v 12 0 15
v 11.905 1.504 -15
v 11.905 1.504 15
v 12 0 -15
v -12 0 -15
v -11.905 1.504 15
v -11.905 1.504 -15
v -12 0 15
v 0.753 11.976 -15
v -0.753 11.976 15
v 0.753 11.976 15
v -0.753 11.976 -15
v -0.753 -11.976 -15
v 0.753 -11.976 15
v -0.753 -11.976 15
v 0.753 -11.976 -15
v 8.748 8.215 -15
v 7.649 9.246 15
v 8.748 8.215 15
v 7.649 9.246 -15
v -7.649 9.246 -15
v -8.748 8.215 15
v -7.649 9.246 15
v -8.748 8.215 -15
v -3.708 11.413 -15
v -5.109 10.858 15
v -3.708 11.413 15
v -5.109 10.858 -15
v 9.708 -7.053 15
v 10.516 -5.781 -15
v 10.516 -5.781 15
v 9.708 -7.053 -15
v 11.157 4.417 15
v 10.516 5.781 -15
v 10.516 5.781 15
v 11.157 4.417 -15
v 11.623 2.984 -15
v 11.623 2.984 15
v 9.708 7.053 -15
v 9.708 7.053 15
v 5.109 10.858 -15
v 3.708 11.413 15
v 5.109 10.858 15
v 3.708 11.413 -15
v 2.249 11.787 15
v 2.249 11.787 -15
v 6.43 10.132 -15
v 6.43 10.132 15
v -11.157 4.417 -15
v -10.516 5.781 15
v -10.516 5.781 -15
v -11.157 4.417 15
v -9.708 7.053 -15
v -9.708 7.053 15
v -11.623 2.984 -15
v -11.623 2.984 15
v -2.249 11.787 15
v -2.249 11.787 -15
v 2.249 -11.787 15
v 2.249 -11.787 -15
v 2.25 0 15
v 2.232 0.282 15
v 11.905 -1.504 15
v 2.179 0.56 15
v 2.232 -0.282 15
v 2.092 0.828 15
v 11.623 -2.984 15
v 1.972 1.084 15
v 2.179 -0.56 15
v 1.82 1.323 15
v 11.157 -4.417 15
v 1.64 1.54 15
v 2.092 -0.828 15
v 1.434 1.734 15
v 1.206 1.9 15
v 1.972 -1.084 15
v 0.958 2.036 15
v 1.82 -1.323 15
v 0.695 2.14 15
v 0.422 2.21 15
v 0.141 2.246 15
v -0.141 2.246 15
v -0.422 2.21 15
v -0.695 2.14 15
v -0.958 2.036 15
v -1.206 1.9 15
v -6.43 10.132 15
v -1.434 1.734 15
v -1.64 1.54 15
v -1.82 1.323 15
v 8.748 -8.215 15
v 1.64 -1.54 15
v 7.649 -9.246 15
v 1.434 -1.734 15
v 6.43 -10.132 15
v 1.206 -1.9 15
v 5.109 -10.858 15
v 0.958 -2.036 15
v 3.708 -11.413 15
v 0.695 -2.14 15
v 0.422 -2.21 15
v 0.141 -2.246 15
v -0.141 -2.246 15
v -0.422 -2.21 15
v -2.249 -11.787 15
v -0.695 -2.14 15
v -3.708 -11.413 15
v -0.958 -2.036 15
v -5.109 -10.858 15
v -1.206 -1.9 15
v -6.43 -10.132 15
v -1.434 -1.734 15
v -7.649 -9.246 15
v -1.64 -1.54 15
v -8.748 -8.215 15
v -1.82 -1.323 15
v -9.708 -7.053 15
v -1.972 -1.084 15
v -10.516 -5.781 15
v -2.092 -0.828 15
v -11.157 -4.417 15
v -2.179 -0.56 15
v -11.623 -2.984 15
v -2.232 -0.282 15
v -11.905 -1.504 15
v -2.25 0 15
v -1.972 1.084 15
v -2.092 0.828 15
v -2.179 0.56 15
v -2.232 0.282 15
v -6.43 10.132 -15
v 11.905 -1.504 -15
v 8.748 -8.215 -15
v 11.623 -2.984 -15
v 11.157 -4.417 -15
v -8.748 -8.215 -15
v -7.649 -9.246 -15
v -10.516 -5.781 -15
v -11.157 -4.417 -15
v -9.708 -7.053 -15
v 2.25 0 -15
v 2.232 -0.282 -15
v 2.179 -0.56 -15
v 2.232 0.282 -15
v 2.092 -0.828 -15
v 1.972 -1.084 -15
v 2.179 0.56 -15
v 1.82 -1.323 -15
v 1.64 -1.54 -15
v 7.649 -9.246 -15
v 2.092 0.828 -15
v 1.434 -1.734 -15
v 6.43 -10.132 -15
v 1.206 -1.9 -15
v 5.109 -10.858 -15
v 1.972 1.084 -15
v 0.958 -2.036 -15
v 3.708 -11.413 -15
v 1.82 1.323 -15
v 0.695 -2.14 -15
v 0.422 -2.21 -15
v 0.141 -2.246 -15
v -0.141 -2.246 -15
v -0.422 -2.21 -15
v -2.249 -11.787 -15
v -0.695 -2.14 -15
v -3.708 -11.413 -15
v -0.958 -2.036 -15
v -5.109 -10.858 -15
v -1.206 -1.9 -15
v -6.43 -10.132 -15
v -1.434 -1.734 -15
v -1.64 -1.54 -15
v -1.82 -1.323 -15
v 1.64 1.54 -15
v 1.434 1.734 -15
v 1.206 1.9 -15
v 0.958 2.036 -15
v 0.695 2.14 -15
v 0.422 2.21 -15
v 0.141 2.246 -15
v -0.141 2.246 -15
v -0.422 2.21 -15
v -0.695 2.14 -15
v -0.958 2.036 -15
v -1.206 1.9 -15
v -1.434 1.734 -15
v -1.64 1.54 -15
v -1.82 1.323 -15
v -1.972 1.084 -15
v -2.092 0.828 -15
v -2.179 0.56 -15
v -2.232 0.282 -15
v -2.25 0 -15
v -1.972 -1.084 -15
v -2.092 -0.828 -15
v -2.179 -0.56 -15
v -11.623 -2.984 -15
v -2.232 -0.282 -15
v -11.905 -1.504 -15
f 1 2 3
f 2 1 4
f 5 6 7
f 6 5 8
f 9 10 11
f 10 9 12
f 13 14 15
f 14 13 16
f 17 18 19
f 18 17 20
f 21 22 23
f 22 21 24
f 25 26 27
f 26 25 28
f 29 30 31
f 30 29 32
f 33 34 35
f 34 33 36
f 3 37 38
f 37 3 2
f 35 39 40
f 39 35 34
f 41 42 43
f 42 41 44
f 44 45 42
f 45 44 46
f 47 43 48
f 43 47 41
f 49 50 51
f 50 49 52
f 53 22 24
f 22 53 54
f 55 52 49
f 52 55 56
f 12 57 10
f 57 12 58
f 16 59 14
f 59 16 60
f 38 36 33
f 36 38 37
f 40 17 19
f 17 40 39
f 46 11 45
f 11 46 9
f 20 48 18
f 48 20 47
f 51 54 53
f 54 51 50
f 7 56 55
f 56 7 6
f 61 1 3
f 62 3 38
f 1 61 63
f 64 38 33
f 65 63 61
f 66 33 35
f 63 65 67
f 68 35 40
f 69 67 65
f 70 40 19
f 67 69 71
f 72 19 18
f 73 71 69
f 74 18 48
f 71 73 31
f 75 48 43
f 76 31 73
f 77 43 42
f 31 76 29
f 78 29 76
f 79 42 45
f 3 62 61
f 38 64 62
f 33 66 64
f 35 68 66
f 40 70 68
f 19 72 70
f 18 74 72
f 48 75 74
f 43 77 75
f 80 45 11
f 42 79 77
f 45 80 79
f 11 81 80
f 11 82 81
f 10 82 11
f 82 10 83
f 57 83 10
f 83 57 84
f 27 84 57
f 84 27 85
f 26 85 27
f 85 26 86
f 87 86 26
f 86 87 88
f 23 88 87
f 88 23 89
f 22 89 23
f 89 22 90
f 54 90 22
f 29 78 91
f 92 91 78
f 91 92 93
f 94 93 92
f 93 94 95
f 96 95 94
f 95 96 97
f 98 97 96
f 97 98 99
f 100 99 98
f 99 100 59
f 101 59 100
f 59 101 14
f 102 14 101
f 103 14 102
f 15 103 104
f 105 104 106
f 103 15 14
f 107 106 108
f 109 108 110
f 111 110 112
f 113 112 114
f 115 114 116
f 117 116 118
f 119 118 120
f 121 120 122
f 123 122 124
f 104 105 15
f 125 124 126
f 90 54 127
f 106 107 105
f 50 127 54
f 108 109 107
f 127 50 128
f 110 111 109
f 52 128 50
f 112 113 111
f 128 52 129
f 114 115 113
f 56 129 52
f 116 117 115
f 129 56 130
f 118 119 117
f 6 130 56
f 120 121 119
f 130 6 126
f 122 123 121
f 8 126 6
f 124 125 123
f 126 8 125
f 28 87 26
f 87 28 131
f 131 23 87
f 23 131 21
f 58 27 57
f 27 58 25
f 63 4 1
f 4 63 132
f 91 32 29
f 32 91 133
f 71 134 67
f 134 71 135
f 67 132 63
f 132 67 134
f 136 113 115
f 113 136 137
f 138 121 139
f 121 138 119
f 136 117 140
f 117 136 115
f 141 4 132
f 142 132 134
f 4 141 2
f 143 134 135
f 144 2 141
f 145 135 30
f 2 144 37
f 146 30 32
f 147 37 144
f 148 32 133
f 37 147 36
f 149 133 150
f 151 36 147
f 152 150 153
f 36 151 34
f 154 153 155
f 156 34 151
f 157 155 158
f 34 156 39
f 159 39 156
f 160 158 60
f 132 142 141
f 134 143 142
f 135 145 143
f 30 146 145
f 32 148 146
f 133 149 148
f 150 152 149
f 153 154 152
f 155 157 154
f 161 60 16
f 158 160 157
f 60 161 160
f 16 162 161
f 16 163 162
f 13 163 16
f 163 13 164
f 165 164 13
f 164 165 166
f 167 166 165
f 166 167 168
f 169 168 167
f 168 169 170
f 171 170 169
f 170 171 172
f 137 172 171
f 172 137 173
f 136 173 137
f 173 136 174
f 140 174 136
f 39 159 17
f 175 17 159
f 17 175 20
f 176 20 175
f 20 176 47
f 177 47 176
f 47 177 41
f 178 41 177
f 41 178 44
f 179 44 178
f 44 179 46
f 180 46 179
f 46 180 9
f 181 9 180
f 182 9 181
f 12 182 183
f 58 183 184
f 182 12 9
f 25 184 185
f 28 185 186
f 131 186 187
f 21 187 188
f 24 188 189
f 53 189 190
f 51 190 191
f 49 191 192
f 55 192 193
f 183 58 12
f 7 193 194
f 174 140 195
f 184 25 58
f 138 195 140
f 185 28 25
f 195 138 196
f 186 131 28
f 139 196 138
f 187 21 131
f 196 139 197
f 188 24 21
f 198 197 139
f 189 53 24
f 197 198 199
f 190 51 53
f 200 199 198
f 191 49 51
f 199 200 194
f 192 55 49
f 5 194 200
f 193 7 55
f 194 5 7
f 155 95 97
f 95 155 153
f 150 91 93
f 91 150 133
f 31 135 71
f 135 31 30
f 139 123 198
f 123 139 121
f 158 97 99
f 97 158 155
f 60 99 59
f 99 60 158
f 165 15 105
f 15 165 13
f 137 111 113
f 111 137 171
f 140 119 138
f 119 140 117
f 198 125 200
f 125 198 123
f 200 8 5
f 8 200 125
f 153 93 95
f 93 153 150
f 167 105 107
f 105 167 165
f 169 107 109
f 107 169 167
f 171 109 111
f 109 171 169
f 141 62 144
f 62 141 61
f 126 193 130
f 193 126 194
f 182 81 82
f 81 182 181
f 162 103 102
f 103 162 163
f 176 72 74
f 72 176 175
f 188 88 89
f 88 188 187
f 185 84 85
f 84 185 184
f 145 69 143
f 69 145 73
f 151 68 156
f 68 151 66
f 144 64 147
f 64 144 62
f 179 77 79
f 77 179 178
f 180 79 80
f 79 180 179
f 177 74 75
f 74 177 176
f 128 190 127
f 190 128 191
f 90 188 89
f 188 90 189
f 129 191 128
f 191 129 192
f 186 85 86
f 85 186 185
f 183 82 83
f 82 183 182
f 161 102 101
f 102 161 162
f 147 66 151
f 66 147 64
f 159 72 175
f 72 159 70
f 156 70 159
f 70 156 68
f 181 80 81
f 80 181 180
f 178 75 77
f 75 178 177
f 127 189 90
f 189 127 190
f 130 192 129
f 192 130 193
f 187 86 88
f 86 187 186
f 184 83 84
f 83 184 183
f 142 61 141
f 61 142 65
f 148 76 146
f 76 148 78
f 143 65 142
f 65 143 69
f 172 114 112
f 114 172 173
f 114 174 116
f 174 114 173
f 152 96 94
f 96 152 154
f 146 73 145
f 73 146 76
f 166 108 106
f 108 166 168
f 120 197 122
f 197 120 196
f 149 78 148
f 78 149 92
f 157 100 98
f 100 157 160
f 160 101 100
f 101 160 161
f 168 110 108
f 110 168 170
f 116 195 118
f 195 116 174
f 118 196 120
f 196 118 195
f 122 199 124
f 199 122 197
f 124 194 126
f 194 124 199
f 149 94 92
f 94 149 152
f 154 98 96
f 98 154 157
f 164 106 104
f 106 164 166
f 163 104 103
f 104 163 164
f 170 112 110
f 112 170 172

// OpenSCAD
$fn = 50;


difference() {
	union() {
		translate(v = [0, 0, -15.0000000000]) {
			cylinder(h = 30, r = 12.0000000000);
		}
	}
	union() {
		translate(v = [0, 0, -100.0000000000]) {
			cylinder(h = 200, r = 2.2500000000);
		}
	}
}
